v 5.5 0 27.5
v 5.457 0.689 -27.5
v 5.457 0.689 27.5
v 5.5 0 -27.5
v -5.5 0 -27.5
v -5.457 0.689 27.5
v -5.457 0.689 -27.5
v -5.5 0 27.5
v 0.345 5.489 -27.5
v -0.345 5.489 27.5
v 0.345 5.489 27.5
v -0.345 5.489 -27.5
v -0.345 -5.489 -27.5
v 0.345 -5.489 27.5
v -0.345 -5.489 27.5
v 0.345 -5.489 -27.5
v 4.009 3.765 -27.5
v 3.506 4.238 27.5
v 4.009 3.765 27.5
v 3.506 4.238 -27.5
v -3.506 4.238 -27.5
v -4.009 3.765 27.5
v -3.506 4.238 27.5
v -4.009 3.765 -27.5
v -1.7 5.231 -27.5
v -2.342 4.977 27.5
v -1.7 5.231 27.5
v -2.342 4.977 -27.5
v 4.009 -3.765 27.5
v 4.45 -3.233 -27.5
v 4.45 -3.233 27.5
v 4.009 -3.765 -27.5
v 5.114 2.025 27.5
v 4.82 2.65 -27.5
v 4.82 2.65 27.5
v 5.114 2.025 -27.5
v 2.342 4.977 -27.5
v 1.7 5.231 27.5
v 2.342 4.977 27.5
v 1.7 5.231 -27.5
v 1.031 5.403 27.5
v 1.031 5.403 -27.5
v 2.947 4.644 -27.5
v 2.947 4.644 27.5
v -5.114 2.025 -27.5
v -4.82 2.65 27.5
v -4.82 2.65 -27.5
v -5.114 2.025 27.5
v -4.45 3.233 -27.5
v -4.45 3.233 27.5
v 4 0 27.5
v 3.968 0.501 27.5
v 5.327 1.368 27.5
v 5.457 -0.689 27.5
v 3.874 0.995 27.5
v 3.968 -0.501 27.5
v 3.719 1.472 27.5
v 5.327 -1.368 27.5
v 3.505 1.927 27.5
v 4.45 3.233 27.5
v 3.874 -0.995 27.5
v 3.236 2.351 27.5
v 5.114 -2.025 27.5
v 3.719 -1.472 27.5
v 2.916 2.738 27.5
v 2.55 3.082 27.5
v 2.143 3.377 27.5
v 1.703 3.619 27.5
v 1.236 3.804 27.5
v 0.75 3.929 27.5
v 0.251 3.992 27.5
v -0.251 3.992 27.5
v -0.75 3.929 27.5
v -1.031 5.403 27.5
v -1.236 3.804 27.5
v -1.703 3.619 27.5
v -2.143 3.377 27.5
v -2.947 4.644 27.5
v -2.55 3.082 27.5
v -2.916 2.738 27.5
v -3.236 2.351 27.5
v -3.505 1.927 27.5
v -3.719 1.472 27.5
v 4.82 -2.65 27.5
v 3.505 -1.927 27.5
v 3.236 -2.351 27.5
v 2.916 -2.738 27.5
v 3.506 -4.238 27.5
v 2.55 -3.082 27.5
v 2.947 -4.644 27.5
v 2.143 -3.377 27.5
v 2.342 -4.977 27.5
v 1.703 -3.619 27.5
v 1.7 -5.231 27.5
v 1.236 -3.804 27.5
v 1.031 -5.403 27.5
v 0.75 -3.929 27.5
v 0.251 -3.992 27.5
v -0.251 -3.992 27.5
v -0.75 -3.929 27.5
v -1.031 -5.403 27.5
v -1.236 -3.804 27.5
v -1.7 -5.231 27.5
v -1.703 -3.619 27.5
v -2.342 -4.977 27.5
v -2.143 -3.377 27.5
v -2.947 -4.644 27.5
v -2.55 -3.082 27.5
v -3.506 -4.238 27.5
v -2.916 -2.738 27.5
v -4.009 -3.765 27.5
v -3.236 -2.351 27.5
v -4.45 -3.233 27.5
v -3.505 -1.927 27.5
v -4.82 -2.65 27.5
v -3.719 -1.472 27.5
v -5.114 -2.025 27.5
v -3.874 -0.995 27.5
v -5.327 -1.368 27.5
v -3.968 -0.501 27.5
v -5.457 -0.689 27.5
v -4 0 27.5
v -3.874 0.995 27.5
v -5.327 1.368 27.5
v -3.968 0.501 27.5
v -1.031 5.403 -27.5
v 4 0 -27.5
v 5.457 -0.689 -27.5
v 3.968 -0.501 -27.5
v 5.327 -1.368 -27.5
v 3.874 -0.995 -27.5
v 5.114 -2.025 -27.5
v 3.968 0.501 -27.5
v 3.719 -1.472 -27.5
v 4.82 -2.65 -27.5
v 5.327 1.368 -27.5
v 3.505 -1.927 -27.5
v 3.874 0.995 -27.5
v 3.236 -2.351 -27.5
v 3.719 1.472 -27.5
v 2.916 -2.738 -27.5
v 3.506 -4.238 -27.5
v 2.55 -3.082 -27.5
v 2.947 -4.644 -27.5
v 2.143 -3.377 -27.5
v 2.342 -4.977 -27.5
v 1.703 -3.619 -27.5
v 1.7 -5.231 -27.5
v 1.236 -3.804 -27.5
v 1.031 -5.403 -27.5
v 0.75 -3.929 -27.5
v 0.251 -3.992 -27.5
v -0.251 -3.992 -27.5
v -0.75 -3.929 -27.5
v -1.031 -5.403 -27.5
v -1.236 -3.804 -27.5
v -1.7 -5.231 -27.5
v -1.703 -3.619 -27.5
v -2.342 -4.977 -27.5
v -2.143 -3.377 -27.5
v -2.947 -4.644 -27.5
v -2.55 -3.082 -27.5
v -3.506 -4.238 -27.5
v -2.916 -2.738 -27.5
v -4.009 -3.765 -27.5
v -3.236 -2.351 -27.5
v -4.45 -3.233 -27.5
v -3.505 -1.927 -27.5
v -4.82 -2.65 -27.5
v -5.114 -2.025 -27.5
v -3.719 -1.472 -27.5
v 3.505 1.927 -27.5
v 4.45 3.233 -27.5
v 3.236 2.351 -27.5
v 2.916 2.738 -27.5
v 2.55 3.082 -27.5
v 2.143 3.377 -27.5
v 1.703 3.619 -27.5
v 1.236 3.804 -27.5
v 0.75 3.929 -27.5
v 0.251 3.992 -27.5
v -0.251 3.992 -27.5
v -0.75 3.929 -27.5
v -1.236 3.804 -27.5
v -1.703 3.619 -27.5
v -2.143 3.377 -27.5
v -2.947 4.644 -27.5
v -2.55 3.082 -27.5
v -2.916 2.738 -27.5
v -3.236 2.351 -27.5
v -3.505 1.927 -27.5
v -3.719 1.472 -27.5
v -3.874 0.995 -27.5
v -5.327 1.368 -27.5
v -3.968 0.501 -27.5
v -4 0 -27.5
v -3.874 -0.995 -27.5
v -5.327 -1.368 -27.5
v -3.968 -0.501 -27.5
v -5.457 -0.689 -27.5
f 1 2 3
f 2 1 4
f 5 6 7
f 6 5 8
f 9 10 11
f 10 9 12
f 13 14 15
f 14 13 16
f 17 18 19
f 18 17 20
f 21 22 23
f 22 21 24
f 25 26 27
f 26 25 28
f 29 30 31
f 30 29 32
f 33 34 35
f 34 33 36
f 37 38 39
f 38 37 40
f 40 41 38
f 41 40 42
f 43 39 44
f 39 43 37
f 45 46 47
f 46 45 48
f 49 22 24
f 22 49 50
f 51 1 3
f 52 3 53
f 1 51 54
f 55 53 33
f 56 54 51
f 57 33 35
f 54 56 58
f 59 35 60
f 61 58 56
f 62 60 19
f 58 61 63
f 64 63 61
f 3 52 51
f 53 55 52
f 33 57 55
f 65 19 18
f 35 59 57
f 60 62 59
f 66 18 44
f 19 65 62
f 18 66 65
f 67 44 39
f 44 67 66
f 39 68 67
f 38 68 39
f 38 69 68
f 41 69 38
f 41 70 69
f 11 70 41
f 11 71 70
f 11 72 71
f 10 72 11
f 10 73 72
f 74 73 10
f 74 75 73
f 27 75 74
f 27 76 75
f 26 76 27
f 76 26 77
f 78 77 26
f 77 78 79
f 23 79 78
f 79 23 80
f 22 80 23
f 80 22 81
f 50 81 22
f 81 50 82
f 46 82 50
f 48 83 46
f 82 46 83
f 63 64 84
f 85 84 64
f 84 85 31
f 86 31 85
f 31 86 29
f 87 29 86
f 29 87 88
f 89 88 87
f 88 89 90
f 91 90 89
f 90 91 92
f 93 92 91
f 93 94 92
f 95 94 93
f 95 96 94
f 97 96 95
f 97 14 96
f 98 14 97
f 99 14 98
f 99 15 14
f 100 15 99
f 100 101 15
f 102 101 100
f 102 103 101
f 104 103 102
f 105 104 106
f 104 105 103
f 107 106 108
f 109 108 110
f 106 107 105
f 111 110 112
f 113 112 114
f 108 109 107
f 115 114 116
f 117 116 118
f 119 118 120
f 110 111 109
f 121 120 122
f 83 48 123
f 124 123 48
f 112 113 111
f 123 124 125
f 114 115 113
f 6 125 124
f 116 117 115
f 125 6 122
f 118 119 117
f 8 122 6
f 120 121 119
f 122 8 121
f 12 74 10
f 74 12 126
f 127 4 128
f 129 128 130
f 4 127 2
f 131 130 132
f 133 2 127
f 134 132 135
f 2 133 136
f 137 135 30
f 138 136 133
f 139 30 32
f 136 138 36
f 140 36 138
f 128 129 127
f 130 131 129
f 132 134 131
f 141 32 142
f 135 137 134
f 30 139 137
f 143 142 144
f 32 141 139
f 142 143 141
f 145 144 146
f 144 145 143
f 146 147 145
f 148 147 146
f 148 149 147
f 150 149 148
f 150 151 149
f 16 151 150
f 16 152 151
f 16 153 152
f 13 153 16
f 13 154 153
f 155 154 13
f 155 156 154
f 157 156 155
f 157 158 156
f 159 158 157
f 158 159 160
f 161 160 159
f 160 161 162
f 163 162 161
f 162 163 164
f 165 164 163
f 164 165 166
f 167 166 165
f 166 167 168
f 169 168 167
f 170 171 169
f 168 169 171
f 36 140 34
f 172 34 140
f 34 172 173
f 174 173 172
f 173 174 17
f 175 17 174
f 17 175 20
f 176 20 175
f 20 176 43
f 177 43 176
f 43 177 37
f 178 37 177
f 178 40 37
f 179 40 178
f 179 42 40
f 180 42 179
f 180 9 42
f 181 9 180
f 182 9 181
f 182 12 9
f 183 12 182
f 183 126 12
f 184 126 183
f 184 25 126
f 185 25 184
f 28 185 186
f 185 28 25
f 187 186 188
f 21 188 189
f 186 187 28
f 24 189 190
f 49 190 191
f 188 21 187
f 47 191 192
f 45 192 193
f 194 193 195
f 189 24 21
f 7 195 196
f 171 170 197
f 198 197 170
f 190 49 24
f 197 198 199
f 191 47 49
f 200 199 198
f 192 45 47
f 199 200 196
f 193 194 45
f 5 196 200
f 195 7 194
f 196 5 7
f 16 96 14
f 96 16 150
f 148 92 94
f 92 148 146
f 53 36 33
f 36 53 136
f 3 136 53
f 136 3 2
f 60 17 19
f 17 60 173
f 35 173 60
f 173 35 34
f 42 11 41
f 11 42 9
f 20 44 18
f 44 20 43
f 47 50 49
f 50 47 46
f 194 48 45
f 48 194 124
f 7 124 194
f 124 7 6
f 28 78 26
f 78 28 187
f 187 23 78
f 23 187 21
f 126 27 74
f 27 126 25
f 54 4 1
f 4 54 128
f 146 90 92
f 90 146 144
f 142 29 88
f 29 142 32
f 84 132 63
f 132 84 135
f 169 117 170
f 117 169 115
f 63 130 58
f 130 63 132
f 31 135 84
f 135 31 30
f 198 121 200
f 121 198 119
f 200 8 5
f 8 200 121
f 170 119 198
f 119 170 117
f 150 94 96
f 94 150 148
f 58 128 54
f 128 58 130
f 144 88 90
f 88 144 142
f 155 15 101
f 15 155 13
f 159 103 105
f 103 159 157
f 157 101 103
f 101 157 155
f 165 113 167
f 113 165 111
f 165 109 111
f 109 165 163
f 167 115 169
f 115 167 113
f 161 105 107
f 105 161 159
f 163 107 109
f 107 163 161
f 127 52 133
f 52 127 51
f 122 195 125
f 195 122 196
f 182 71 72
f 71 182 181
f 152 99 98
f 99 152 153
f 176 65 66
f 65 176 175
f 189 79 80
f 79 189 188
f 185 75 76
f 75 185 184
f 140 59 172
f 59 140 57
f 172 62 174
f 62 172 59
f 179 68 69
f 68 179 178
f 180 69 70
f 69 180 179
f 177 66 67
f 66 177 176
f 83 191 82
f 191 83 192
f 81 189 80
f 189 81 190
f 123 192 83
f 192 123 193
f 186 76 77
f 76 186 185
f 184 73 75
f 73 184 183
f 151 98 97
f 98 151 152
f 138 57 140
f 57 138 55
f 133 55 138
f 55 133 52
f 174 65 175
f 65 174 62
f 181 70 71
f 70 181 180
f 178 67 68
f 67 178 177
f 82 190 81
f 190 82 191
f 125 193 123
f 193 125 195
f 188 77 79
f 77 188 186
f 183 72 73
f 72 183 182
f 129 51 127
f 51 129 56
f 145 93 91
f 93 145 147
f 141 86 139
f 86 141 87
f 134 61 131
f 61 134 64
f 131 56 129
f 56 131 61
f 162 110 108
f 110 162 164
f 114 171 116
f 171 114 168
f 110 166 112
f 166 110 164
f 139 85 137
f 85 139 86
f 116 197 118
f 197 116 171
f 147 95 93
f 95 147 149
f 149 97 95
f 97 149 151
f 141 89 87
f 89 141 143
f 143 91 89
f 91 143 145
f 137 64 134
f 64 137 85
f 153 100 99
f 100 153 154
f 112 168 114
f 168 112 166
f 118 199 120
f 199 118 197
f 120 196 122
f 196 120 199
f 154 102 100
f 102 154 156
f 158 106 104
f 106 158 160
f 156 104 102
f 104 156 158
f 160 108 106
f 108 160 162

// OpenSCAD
$fn = 50;


difference() {
	union() {
		translate(v = [0, 0, -27.5000000000]) {
			cylinder(h = 55, r = 5.5000000000);
		}
	}
	union() {
		translate(v = [0, 0, -100.0000000000]) {
			cylinder(h = 200, r = 4);
		}
	}
}
